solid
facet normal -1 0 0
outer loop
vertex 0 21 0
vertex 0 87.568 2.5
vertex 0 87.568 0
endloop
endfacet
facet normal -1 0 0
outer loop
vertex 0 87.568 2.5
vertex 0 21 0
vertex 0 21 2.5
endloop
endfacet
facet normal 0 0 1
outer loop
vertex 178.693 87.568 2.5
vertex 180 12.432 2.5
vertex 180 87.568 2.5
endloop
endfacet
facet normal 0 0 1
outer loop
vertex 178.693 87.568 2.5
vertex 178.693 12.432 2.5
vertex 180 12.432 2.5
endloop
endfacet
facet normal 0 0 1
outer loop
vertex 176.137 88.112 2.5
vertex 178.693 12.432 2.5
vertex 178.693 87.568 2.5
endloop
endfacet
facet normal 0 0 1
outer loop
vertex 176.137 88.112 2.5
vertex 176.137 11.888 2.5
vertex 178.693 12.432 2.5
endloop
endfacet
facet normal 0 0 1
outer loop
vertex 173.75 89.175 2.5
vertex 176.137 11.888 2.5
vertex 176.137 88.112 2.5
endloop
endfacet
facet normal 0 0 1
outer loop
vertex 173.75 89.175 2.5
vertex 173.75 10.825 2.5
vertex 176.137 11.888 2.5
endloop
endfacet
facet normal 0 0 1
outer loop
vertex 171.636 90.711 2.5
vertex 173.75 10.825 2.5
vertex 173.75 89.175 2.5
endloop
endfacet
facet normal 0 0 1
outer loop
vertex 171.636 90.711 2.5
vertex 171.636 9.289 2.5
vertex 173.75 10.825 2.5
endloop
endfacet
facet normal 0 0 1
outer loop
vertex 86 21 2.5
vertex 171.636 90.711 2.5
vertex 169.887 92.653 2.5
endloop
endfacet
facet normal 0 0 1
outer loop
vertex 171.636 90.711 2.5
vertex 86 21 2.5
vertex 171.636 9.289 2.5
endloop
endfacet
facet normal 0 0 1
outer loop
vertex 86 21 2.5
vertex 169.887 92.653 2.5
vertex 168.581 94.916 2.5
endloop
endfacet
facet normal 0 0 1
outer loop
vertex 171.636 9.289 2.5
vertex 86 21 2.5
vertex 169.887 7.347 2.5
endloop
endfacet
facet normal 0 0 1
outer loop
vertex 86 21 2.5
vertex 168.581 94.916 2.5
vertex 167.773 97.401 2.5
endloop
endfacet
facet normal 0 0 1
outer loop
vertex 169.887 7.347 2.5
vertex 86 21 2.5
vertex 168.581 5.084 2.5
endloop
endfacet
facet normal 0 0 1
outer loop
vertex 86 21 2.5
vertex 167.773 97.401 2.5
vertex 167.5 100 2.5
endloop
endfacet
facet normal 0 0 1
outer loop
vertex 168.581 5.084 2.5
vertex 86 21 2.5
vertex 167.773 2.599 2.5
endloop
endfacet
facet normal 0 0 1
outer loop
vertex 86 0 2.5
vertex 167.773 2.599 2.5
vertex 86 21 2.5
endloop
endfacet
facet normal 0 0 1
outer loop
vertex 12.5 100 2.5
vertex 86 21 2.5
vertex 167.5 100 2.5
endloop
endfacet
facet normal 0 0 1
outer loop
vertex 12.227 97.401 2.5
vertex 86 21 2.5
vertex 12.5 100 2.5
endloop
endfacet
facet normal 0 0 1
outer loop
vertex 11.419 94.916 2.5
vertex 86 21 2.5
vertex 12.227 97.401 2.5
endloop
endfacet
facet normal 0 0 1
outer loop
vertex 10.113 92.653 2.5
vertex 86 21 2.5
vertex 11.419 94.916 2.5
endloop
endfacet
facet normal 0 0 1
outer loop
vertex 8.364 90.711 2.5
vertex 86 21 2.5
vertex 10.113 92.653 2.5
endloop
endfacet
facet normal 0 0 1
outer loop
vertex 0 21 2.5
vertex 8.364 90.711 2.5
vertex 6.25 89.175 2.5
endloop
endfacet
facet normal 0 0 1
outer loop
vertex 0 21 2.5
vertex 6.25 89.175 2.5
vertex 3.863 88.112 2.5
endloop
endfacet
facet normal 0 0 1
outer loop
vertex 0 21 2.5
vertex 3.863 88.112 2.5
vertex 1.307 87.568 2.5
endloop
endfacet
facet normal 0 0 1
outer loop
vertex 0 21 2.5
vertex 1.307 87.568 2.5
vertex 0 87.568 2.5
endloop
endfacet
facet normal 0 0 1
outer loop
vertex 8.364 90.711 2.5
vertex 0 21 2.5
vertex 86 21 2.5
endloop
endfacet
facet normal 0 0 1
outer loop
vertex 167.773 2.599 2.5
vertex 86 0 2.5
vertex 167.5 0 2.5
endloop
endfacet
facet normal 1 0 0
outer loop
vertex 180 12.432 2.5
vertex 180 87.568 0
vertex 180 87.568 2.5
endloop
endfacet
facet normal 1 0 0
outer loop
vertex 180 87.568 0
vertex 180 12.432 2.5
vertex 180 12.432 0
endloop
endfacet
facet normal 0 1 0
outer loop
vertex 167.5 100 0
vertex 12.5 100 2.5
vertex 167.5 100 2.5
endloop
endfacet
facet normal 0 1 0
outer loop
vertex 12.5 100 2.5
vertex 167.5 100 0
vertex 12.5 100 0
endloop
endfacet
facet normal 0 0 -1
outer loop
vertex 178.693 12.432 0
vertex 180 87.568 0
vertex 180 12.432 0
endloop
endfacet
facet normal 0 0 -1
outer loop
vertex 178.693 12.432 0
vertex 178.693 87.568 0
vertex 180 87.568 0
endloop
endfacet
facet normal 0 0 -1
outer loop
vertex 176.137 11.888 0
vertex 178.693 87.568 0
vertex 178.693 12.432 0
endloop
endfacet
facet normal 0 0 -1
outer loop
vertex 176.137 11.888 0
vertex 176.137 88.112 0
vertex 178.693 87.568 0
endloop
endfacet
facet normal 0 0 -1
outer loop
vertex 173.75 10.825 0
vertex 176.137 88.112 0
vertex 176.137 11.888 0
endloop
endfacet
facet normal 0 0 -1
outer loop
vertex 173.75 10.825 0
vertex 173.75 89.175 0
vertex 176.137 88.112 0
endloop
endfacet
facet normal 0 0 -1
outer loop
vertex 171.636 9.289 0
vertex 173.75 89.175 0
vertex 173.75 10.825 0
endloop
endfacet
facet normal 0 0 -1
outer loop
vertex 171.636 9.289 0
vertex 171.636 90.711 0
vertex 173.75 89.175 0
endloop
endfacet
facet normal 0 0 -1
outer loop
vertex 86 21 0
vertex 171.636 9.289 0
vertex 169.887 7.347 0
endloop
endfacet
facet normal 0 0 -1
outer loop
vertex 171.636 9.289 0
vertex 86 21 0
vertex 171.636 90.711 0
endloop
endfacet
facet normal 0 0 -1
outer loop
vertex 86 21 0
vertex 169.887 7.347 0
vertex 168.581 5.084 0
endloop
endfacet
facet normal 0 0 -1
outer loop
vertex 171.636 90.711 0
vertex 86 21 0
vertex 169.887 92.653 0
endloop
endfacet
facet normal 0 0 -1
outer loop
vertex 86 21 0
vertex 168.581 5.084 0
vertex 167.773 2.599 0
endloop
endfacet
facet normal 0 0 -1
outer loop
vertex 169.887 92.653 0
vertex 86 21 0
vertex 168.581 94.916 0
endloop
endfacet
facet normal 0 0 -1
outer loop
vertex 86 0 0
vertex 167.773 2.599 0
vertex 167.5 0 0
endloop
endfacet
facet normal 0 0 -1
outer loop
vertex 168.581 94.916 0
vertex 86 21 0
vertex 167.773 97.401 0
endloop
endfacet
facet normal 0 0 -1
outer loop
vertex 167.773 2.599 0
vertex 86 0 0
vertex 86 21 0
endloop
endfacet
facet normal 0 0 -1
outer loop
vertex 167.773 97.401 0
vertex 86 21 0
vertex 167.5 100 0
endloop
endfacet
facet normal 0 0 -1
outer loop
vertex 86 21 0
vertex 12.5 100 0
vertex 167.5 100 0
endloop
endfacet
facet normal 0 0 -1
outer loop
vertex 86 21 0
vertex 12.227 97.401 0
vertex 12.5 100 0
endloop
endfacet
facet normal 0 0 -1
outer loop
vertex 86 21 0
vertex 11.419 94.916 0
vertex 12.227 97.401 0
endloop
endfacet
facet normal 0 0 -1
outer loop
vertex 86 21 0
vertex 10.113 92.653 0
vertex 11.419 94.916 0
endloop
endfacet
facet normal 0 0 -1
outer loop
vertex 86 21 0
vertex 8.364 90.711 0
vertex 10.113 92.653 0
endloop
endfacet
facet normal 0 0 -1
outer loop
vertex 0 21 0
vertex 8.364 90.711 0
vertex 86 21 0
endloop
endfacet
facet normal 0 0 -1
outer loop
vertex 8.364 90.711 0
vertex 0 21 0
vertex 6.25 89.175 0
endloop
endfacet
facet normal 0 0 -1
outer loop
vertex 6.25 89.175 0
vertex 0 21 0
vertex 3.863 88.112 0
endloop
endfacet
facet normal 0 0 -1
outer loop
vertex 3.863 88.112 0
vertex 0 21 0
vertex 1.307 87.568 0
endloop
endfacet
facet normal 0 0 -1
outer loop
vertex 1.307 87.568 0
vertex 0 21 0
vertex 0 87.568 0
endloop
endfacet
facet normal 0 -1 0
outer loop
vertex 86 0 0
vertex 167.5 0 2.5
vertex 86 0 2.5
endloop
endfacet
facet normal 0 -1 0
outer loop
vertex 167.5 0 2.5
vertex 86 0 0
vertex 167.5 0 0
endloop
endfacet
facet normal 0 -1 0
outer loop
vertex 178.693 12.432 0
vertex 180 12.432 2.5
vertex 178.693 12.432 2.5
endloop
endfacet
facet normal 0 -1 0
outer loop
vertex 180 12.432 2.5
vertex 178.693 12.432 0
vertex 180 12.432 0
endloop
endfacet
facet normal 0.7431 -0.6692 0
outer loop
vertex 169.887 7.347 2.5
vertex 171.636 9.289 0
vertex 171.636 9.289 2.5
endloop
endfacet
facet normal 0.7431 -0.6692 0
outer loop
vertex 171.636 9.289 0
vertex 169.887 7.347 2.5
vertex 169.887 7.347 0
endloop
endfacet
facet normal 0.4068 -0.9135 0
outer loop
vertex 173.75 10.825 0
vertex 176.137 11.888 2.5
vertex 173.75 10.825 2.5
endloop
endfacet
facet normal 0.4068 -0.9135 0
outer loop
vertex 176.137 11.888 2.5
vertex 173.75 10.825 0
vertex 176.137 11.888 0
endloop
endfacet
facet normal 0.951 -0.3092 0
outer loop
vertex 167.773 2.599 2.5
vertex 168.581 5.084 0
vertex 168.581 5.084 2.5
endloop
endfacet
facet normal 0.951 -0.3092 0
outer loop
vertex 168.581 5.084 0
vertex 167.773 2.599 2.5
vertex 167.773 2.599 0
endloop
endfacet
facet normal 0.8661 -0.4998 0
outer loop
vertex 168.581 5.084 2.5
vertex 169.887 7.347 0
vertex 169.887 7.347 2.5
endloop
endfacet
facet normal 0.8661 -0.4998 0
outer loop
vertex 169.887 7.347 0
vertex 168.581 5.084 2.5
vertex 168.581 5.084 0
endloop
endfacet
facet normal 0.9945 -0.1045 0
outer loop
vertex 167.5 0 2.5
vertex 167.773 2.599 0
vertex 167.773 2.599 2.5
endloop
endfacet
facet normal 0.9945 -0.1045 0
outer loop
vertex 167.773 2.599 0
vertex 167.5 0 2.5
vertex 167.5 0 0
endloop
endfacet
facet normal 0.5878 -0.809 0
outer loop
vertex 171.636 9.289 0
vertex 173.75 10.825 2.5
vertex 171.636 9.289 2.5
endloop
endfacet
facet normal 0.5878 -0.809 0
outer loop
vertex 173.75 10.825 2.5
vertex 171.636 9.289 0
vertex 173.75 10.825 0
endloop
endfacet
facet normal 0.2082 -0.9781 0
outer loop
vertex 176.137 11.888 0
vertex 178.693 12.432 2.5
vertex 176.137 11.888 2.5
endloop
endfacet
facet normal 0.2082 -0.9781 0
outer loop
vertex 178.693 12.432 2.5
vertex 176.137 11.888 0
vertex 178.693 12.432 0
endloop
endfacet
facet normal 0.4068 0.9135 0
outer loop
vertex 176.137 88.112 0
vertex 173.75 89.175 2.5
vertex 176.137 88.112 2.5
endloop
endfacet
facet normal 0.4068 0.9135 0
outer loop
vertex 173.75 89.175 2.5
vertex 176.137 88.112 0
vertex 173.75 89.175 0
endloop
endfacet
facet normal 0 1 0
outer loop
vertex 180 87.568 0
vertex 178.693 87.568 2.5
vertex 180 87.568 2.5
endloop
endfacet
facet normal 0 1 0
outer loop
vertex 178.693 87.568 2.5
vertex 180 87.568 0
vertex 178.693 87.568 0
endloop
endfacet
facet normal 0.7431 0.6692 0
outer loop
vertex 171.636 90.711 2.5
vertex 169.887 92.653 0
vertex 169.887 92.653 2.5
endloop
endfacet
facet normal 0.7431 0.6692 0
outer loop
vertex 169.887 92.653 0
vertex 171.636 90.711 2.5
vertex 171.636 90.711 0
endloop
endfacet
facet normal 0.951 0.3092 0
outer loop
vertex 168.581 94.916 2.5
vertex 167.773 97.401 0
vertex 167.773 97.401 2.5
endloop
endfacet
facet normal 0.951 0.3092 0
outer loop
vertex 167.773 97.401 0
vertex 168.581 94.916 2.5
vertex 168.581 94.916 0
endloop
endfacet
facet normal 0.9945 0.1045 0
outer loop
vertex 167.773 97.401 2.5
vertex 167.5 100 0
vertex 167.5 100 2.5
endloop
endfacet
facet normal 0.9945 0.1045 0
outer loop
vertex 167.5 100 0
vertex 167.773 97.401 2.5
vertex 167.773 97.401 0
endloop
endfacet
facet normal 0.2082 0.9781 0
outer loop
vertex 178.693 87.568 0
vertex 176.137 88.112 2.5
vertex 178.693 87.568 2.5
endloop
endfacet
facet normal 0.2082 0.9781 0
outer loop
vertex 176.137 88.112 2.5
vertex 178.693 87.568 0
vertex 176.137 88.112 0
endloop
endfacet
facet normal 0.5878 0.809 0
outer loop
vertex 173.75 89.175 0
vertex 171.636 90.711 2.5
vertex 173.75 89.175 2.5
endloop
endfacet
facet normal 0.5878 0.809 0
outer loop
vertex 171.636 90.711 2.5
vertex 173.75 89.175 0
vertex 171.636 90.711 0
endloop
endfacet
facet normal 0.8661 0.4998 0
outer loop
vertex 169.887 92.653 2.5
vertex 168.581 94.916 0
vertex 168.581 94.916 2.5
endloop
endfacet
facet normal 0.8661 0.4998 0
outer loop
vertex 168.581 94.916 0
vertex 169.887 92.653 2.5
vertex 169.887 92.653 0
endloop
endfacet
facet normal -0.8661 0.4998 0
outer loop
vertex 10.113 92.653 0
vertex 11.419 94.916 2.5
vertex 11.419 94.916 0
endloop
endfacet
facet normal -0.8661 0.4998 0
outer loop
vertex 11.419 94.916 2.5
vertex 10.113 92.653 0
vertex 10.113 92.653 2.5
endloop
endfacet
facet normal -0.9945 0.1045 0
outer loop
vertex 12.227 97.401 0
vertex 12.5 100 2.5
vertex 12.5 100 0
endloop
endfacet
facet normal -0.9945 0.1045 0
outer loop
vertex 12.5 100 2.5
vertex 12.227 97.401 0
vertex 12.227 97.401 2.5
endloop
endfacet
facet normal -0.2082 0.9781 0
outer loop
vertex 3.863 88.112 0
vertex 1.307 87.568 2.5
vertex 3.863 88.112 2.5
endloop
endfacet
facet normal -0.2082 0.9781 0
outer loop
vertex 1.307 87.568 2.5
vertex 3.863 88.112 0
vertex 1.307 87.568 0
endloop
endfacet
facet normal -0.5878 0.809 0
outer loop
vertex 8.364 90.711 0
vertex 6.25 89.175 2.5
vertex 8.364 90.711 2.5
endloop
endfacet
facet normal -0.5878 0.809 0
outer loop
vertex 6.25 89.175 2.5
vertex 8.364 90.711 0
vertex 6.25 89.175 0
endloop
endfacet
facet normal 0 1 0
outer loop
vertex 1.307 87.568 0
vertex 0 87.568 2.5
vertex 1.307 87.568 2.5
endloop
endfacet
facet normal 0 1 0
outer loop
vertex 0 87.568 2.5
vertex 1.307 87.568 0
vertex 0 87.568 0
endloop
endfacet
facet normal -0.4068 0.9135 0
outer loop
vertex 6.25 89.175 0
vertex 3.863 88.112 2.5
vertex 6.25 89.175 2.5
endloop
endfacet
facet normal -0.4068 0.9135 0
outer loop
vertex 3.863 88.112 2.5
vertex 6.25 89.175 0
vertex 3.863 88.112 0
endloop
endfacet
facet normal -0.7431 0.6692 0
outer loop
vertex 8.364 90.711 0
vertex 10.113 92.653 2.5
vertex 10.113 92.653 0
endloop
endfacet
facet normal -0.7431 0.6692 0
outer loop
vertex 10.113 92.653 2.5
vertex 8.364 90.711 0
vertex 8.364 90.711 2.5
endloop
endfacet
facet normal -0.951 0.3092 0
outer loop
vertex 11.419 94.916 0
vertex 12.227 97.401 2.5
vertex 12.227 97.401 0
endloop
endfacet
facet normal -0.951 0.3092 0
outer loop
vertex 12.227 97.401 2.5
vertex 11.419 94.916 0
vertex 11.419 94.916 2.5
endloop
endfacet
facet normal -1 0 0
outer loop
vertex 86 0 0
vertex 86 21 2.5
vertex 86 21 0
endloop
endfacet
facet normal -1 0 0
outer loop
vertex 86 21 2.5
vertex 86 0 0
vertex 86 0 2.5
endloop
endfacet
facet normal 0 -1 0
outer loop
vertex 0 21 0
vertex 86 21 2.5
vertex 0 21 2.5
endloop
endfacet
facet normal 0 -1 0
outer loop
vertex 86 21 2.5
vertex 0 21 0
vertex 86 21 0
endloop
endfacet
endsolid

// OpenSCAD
altura = 2.5; //3;

FN = 40;

difference(convexity = 1,$fn=FN){
    cubo_maior(); 
}

module cubo_maior(){
difference(convexity = 1,$fn=FN){
    color("red")
    cube([180, 100, altura]);

    translate([180, 0, -2])
    canto();

    translate([180, 100, -2])
    canto();

    translate([0, 100, -2])
    canto();

    //canto embaixo
    //translate([0, 0, -2])
    //canto();
    
    recorteAleasXp06();
}
}  

module canto(){
    color("yellow")
    cylinder(h=10, r=25/2);
}

module recorteAleasXp06() {
    translate([-1, -1, -1])
    color("blue")
    cube([86+1, 21+1, altura+2], center=false);
}
